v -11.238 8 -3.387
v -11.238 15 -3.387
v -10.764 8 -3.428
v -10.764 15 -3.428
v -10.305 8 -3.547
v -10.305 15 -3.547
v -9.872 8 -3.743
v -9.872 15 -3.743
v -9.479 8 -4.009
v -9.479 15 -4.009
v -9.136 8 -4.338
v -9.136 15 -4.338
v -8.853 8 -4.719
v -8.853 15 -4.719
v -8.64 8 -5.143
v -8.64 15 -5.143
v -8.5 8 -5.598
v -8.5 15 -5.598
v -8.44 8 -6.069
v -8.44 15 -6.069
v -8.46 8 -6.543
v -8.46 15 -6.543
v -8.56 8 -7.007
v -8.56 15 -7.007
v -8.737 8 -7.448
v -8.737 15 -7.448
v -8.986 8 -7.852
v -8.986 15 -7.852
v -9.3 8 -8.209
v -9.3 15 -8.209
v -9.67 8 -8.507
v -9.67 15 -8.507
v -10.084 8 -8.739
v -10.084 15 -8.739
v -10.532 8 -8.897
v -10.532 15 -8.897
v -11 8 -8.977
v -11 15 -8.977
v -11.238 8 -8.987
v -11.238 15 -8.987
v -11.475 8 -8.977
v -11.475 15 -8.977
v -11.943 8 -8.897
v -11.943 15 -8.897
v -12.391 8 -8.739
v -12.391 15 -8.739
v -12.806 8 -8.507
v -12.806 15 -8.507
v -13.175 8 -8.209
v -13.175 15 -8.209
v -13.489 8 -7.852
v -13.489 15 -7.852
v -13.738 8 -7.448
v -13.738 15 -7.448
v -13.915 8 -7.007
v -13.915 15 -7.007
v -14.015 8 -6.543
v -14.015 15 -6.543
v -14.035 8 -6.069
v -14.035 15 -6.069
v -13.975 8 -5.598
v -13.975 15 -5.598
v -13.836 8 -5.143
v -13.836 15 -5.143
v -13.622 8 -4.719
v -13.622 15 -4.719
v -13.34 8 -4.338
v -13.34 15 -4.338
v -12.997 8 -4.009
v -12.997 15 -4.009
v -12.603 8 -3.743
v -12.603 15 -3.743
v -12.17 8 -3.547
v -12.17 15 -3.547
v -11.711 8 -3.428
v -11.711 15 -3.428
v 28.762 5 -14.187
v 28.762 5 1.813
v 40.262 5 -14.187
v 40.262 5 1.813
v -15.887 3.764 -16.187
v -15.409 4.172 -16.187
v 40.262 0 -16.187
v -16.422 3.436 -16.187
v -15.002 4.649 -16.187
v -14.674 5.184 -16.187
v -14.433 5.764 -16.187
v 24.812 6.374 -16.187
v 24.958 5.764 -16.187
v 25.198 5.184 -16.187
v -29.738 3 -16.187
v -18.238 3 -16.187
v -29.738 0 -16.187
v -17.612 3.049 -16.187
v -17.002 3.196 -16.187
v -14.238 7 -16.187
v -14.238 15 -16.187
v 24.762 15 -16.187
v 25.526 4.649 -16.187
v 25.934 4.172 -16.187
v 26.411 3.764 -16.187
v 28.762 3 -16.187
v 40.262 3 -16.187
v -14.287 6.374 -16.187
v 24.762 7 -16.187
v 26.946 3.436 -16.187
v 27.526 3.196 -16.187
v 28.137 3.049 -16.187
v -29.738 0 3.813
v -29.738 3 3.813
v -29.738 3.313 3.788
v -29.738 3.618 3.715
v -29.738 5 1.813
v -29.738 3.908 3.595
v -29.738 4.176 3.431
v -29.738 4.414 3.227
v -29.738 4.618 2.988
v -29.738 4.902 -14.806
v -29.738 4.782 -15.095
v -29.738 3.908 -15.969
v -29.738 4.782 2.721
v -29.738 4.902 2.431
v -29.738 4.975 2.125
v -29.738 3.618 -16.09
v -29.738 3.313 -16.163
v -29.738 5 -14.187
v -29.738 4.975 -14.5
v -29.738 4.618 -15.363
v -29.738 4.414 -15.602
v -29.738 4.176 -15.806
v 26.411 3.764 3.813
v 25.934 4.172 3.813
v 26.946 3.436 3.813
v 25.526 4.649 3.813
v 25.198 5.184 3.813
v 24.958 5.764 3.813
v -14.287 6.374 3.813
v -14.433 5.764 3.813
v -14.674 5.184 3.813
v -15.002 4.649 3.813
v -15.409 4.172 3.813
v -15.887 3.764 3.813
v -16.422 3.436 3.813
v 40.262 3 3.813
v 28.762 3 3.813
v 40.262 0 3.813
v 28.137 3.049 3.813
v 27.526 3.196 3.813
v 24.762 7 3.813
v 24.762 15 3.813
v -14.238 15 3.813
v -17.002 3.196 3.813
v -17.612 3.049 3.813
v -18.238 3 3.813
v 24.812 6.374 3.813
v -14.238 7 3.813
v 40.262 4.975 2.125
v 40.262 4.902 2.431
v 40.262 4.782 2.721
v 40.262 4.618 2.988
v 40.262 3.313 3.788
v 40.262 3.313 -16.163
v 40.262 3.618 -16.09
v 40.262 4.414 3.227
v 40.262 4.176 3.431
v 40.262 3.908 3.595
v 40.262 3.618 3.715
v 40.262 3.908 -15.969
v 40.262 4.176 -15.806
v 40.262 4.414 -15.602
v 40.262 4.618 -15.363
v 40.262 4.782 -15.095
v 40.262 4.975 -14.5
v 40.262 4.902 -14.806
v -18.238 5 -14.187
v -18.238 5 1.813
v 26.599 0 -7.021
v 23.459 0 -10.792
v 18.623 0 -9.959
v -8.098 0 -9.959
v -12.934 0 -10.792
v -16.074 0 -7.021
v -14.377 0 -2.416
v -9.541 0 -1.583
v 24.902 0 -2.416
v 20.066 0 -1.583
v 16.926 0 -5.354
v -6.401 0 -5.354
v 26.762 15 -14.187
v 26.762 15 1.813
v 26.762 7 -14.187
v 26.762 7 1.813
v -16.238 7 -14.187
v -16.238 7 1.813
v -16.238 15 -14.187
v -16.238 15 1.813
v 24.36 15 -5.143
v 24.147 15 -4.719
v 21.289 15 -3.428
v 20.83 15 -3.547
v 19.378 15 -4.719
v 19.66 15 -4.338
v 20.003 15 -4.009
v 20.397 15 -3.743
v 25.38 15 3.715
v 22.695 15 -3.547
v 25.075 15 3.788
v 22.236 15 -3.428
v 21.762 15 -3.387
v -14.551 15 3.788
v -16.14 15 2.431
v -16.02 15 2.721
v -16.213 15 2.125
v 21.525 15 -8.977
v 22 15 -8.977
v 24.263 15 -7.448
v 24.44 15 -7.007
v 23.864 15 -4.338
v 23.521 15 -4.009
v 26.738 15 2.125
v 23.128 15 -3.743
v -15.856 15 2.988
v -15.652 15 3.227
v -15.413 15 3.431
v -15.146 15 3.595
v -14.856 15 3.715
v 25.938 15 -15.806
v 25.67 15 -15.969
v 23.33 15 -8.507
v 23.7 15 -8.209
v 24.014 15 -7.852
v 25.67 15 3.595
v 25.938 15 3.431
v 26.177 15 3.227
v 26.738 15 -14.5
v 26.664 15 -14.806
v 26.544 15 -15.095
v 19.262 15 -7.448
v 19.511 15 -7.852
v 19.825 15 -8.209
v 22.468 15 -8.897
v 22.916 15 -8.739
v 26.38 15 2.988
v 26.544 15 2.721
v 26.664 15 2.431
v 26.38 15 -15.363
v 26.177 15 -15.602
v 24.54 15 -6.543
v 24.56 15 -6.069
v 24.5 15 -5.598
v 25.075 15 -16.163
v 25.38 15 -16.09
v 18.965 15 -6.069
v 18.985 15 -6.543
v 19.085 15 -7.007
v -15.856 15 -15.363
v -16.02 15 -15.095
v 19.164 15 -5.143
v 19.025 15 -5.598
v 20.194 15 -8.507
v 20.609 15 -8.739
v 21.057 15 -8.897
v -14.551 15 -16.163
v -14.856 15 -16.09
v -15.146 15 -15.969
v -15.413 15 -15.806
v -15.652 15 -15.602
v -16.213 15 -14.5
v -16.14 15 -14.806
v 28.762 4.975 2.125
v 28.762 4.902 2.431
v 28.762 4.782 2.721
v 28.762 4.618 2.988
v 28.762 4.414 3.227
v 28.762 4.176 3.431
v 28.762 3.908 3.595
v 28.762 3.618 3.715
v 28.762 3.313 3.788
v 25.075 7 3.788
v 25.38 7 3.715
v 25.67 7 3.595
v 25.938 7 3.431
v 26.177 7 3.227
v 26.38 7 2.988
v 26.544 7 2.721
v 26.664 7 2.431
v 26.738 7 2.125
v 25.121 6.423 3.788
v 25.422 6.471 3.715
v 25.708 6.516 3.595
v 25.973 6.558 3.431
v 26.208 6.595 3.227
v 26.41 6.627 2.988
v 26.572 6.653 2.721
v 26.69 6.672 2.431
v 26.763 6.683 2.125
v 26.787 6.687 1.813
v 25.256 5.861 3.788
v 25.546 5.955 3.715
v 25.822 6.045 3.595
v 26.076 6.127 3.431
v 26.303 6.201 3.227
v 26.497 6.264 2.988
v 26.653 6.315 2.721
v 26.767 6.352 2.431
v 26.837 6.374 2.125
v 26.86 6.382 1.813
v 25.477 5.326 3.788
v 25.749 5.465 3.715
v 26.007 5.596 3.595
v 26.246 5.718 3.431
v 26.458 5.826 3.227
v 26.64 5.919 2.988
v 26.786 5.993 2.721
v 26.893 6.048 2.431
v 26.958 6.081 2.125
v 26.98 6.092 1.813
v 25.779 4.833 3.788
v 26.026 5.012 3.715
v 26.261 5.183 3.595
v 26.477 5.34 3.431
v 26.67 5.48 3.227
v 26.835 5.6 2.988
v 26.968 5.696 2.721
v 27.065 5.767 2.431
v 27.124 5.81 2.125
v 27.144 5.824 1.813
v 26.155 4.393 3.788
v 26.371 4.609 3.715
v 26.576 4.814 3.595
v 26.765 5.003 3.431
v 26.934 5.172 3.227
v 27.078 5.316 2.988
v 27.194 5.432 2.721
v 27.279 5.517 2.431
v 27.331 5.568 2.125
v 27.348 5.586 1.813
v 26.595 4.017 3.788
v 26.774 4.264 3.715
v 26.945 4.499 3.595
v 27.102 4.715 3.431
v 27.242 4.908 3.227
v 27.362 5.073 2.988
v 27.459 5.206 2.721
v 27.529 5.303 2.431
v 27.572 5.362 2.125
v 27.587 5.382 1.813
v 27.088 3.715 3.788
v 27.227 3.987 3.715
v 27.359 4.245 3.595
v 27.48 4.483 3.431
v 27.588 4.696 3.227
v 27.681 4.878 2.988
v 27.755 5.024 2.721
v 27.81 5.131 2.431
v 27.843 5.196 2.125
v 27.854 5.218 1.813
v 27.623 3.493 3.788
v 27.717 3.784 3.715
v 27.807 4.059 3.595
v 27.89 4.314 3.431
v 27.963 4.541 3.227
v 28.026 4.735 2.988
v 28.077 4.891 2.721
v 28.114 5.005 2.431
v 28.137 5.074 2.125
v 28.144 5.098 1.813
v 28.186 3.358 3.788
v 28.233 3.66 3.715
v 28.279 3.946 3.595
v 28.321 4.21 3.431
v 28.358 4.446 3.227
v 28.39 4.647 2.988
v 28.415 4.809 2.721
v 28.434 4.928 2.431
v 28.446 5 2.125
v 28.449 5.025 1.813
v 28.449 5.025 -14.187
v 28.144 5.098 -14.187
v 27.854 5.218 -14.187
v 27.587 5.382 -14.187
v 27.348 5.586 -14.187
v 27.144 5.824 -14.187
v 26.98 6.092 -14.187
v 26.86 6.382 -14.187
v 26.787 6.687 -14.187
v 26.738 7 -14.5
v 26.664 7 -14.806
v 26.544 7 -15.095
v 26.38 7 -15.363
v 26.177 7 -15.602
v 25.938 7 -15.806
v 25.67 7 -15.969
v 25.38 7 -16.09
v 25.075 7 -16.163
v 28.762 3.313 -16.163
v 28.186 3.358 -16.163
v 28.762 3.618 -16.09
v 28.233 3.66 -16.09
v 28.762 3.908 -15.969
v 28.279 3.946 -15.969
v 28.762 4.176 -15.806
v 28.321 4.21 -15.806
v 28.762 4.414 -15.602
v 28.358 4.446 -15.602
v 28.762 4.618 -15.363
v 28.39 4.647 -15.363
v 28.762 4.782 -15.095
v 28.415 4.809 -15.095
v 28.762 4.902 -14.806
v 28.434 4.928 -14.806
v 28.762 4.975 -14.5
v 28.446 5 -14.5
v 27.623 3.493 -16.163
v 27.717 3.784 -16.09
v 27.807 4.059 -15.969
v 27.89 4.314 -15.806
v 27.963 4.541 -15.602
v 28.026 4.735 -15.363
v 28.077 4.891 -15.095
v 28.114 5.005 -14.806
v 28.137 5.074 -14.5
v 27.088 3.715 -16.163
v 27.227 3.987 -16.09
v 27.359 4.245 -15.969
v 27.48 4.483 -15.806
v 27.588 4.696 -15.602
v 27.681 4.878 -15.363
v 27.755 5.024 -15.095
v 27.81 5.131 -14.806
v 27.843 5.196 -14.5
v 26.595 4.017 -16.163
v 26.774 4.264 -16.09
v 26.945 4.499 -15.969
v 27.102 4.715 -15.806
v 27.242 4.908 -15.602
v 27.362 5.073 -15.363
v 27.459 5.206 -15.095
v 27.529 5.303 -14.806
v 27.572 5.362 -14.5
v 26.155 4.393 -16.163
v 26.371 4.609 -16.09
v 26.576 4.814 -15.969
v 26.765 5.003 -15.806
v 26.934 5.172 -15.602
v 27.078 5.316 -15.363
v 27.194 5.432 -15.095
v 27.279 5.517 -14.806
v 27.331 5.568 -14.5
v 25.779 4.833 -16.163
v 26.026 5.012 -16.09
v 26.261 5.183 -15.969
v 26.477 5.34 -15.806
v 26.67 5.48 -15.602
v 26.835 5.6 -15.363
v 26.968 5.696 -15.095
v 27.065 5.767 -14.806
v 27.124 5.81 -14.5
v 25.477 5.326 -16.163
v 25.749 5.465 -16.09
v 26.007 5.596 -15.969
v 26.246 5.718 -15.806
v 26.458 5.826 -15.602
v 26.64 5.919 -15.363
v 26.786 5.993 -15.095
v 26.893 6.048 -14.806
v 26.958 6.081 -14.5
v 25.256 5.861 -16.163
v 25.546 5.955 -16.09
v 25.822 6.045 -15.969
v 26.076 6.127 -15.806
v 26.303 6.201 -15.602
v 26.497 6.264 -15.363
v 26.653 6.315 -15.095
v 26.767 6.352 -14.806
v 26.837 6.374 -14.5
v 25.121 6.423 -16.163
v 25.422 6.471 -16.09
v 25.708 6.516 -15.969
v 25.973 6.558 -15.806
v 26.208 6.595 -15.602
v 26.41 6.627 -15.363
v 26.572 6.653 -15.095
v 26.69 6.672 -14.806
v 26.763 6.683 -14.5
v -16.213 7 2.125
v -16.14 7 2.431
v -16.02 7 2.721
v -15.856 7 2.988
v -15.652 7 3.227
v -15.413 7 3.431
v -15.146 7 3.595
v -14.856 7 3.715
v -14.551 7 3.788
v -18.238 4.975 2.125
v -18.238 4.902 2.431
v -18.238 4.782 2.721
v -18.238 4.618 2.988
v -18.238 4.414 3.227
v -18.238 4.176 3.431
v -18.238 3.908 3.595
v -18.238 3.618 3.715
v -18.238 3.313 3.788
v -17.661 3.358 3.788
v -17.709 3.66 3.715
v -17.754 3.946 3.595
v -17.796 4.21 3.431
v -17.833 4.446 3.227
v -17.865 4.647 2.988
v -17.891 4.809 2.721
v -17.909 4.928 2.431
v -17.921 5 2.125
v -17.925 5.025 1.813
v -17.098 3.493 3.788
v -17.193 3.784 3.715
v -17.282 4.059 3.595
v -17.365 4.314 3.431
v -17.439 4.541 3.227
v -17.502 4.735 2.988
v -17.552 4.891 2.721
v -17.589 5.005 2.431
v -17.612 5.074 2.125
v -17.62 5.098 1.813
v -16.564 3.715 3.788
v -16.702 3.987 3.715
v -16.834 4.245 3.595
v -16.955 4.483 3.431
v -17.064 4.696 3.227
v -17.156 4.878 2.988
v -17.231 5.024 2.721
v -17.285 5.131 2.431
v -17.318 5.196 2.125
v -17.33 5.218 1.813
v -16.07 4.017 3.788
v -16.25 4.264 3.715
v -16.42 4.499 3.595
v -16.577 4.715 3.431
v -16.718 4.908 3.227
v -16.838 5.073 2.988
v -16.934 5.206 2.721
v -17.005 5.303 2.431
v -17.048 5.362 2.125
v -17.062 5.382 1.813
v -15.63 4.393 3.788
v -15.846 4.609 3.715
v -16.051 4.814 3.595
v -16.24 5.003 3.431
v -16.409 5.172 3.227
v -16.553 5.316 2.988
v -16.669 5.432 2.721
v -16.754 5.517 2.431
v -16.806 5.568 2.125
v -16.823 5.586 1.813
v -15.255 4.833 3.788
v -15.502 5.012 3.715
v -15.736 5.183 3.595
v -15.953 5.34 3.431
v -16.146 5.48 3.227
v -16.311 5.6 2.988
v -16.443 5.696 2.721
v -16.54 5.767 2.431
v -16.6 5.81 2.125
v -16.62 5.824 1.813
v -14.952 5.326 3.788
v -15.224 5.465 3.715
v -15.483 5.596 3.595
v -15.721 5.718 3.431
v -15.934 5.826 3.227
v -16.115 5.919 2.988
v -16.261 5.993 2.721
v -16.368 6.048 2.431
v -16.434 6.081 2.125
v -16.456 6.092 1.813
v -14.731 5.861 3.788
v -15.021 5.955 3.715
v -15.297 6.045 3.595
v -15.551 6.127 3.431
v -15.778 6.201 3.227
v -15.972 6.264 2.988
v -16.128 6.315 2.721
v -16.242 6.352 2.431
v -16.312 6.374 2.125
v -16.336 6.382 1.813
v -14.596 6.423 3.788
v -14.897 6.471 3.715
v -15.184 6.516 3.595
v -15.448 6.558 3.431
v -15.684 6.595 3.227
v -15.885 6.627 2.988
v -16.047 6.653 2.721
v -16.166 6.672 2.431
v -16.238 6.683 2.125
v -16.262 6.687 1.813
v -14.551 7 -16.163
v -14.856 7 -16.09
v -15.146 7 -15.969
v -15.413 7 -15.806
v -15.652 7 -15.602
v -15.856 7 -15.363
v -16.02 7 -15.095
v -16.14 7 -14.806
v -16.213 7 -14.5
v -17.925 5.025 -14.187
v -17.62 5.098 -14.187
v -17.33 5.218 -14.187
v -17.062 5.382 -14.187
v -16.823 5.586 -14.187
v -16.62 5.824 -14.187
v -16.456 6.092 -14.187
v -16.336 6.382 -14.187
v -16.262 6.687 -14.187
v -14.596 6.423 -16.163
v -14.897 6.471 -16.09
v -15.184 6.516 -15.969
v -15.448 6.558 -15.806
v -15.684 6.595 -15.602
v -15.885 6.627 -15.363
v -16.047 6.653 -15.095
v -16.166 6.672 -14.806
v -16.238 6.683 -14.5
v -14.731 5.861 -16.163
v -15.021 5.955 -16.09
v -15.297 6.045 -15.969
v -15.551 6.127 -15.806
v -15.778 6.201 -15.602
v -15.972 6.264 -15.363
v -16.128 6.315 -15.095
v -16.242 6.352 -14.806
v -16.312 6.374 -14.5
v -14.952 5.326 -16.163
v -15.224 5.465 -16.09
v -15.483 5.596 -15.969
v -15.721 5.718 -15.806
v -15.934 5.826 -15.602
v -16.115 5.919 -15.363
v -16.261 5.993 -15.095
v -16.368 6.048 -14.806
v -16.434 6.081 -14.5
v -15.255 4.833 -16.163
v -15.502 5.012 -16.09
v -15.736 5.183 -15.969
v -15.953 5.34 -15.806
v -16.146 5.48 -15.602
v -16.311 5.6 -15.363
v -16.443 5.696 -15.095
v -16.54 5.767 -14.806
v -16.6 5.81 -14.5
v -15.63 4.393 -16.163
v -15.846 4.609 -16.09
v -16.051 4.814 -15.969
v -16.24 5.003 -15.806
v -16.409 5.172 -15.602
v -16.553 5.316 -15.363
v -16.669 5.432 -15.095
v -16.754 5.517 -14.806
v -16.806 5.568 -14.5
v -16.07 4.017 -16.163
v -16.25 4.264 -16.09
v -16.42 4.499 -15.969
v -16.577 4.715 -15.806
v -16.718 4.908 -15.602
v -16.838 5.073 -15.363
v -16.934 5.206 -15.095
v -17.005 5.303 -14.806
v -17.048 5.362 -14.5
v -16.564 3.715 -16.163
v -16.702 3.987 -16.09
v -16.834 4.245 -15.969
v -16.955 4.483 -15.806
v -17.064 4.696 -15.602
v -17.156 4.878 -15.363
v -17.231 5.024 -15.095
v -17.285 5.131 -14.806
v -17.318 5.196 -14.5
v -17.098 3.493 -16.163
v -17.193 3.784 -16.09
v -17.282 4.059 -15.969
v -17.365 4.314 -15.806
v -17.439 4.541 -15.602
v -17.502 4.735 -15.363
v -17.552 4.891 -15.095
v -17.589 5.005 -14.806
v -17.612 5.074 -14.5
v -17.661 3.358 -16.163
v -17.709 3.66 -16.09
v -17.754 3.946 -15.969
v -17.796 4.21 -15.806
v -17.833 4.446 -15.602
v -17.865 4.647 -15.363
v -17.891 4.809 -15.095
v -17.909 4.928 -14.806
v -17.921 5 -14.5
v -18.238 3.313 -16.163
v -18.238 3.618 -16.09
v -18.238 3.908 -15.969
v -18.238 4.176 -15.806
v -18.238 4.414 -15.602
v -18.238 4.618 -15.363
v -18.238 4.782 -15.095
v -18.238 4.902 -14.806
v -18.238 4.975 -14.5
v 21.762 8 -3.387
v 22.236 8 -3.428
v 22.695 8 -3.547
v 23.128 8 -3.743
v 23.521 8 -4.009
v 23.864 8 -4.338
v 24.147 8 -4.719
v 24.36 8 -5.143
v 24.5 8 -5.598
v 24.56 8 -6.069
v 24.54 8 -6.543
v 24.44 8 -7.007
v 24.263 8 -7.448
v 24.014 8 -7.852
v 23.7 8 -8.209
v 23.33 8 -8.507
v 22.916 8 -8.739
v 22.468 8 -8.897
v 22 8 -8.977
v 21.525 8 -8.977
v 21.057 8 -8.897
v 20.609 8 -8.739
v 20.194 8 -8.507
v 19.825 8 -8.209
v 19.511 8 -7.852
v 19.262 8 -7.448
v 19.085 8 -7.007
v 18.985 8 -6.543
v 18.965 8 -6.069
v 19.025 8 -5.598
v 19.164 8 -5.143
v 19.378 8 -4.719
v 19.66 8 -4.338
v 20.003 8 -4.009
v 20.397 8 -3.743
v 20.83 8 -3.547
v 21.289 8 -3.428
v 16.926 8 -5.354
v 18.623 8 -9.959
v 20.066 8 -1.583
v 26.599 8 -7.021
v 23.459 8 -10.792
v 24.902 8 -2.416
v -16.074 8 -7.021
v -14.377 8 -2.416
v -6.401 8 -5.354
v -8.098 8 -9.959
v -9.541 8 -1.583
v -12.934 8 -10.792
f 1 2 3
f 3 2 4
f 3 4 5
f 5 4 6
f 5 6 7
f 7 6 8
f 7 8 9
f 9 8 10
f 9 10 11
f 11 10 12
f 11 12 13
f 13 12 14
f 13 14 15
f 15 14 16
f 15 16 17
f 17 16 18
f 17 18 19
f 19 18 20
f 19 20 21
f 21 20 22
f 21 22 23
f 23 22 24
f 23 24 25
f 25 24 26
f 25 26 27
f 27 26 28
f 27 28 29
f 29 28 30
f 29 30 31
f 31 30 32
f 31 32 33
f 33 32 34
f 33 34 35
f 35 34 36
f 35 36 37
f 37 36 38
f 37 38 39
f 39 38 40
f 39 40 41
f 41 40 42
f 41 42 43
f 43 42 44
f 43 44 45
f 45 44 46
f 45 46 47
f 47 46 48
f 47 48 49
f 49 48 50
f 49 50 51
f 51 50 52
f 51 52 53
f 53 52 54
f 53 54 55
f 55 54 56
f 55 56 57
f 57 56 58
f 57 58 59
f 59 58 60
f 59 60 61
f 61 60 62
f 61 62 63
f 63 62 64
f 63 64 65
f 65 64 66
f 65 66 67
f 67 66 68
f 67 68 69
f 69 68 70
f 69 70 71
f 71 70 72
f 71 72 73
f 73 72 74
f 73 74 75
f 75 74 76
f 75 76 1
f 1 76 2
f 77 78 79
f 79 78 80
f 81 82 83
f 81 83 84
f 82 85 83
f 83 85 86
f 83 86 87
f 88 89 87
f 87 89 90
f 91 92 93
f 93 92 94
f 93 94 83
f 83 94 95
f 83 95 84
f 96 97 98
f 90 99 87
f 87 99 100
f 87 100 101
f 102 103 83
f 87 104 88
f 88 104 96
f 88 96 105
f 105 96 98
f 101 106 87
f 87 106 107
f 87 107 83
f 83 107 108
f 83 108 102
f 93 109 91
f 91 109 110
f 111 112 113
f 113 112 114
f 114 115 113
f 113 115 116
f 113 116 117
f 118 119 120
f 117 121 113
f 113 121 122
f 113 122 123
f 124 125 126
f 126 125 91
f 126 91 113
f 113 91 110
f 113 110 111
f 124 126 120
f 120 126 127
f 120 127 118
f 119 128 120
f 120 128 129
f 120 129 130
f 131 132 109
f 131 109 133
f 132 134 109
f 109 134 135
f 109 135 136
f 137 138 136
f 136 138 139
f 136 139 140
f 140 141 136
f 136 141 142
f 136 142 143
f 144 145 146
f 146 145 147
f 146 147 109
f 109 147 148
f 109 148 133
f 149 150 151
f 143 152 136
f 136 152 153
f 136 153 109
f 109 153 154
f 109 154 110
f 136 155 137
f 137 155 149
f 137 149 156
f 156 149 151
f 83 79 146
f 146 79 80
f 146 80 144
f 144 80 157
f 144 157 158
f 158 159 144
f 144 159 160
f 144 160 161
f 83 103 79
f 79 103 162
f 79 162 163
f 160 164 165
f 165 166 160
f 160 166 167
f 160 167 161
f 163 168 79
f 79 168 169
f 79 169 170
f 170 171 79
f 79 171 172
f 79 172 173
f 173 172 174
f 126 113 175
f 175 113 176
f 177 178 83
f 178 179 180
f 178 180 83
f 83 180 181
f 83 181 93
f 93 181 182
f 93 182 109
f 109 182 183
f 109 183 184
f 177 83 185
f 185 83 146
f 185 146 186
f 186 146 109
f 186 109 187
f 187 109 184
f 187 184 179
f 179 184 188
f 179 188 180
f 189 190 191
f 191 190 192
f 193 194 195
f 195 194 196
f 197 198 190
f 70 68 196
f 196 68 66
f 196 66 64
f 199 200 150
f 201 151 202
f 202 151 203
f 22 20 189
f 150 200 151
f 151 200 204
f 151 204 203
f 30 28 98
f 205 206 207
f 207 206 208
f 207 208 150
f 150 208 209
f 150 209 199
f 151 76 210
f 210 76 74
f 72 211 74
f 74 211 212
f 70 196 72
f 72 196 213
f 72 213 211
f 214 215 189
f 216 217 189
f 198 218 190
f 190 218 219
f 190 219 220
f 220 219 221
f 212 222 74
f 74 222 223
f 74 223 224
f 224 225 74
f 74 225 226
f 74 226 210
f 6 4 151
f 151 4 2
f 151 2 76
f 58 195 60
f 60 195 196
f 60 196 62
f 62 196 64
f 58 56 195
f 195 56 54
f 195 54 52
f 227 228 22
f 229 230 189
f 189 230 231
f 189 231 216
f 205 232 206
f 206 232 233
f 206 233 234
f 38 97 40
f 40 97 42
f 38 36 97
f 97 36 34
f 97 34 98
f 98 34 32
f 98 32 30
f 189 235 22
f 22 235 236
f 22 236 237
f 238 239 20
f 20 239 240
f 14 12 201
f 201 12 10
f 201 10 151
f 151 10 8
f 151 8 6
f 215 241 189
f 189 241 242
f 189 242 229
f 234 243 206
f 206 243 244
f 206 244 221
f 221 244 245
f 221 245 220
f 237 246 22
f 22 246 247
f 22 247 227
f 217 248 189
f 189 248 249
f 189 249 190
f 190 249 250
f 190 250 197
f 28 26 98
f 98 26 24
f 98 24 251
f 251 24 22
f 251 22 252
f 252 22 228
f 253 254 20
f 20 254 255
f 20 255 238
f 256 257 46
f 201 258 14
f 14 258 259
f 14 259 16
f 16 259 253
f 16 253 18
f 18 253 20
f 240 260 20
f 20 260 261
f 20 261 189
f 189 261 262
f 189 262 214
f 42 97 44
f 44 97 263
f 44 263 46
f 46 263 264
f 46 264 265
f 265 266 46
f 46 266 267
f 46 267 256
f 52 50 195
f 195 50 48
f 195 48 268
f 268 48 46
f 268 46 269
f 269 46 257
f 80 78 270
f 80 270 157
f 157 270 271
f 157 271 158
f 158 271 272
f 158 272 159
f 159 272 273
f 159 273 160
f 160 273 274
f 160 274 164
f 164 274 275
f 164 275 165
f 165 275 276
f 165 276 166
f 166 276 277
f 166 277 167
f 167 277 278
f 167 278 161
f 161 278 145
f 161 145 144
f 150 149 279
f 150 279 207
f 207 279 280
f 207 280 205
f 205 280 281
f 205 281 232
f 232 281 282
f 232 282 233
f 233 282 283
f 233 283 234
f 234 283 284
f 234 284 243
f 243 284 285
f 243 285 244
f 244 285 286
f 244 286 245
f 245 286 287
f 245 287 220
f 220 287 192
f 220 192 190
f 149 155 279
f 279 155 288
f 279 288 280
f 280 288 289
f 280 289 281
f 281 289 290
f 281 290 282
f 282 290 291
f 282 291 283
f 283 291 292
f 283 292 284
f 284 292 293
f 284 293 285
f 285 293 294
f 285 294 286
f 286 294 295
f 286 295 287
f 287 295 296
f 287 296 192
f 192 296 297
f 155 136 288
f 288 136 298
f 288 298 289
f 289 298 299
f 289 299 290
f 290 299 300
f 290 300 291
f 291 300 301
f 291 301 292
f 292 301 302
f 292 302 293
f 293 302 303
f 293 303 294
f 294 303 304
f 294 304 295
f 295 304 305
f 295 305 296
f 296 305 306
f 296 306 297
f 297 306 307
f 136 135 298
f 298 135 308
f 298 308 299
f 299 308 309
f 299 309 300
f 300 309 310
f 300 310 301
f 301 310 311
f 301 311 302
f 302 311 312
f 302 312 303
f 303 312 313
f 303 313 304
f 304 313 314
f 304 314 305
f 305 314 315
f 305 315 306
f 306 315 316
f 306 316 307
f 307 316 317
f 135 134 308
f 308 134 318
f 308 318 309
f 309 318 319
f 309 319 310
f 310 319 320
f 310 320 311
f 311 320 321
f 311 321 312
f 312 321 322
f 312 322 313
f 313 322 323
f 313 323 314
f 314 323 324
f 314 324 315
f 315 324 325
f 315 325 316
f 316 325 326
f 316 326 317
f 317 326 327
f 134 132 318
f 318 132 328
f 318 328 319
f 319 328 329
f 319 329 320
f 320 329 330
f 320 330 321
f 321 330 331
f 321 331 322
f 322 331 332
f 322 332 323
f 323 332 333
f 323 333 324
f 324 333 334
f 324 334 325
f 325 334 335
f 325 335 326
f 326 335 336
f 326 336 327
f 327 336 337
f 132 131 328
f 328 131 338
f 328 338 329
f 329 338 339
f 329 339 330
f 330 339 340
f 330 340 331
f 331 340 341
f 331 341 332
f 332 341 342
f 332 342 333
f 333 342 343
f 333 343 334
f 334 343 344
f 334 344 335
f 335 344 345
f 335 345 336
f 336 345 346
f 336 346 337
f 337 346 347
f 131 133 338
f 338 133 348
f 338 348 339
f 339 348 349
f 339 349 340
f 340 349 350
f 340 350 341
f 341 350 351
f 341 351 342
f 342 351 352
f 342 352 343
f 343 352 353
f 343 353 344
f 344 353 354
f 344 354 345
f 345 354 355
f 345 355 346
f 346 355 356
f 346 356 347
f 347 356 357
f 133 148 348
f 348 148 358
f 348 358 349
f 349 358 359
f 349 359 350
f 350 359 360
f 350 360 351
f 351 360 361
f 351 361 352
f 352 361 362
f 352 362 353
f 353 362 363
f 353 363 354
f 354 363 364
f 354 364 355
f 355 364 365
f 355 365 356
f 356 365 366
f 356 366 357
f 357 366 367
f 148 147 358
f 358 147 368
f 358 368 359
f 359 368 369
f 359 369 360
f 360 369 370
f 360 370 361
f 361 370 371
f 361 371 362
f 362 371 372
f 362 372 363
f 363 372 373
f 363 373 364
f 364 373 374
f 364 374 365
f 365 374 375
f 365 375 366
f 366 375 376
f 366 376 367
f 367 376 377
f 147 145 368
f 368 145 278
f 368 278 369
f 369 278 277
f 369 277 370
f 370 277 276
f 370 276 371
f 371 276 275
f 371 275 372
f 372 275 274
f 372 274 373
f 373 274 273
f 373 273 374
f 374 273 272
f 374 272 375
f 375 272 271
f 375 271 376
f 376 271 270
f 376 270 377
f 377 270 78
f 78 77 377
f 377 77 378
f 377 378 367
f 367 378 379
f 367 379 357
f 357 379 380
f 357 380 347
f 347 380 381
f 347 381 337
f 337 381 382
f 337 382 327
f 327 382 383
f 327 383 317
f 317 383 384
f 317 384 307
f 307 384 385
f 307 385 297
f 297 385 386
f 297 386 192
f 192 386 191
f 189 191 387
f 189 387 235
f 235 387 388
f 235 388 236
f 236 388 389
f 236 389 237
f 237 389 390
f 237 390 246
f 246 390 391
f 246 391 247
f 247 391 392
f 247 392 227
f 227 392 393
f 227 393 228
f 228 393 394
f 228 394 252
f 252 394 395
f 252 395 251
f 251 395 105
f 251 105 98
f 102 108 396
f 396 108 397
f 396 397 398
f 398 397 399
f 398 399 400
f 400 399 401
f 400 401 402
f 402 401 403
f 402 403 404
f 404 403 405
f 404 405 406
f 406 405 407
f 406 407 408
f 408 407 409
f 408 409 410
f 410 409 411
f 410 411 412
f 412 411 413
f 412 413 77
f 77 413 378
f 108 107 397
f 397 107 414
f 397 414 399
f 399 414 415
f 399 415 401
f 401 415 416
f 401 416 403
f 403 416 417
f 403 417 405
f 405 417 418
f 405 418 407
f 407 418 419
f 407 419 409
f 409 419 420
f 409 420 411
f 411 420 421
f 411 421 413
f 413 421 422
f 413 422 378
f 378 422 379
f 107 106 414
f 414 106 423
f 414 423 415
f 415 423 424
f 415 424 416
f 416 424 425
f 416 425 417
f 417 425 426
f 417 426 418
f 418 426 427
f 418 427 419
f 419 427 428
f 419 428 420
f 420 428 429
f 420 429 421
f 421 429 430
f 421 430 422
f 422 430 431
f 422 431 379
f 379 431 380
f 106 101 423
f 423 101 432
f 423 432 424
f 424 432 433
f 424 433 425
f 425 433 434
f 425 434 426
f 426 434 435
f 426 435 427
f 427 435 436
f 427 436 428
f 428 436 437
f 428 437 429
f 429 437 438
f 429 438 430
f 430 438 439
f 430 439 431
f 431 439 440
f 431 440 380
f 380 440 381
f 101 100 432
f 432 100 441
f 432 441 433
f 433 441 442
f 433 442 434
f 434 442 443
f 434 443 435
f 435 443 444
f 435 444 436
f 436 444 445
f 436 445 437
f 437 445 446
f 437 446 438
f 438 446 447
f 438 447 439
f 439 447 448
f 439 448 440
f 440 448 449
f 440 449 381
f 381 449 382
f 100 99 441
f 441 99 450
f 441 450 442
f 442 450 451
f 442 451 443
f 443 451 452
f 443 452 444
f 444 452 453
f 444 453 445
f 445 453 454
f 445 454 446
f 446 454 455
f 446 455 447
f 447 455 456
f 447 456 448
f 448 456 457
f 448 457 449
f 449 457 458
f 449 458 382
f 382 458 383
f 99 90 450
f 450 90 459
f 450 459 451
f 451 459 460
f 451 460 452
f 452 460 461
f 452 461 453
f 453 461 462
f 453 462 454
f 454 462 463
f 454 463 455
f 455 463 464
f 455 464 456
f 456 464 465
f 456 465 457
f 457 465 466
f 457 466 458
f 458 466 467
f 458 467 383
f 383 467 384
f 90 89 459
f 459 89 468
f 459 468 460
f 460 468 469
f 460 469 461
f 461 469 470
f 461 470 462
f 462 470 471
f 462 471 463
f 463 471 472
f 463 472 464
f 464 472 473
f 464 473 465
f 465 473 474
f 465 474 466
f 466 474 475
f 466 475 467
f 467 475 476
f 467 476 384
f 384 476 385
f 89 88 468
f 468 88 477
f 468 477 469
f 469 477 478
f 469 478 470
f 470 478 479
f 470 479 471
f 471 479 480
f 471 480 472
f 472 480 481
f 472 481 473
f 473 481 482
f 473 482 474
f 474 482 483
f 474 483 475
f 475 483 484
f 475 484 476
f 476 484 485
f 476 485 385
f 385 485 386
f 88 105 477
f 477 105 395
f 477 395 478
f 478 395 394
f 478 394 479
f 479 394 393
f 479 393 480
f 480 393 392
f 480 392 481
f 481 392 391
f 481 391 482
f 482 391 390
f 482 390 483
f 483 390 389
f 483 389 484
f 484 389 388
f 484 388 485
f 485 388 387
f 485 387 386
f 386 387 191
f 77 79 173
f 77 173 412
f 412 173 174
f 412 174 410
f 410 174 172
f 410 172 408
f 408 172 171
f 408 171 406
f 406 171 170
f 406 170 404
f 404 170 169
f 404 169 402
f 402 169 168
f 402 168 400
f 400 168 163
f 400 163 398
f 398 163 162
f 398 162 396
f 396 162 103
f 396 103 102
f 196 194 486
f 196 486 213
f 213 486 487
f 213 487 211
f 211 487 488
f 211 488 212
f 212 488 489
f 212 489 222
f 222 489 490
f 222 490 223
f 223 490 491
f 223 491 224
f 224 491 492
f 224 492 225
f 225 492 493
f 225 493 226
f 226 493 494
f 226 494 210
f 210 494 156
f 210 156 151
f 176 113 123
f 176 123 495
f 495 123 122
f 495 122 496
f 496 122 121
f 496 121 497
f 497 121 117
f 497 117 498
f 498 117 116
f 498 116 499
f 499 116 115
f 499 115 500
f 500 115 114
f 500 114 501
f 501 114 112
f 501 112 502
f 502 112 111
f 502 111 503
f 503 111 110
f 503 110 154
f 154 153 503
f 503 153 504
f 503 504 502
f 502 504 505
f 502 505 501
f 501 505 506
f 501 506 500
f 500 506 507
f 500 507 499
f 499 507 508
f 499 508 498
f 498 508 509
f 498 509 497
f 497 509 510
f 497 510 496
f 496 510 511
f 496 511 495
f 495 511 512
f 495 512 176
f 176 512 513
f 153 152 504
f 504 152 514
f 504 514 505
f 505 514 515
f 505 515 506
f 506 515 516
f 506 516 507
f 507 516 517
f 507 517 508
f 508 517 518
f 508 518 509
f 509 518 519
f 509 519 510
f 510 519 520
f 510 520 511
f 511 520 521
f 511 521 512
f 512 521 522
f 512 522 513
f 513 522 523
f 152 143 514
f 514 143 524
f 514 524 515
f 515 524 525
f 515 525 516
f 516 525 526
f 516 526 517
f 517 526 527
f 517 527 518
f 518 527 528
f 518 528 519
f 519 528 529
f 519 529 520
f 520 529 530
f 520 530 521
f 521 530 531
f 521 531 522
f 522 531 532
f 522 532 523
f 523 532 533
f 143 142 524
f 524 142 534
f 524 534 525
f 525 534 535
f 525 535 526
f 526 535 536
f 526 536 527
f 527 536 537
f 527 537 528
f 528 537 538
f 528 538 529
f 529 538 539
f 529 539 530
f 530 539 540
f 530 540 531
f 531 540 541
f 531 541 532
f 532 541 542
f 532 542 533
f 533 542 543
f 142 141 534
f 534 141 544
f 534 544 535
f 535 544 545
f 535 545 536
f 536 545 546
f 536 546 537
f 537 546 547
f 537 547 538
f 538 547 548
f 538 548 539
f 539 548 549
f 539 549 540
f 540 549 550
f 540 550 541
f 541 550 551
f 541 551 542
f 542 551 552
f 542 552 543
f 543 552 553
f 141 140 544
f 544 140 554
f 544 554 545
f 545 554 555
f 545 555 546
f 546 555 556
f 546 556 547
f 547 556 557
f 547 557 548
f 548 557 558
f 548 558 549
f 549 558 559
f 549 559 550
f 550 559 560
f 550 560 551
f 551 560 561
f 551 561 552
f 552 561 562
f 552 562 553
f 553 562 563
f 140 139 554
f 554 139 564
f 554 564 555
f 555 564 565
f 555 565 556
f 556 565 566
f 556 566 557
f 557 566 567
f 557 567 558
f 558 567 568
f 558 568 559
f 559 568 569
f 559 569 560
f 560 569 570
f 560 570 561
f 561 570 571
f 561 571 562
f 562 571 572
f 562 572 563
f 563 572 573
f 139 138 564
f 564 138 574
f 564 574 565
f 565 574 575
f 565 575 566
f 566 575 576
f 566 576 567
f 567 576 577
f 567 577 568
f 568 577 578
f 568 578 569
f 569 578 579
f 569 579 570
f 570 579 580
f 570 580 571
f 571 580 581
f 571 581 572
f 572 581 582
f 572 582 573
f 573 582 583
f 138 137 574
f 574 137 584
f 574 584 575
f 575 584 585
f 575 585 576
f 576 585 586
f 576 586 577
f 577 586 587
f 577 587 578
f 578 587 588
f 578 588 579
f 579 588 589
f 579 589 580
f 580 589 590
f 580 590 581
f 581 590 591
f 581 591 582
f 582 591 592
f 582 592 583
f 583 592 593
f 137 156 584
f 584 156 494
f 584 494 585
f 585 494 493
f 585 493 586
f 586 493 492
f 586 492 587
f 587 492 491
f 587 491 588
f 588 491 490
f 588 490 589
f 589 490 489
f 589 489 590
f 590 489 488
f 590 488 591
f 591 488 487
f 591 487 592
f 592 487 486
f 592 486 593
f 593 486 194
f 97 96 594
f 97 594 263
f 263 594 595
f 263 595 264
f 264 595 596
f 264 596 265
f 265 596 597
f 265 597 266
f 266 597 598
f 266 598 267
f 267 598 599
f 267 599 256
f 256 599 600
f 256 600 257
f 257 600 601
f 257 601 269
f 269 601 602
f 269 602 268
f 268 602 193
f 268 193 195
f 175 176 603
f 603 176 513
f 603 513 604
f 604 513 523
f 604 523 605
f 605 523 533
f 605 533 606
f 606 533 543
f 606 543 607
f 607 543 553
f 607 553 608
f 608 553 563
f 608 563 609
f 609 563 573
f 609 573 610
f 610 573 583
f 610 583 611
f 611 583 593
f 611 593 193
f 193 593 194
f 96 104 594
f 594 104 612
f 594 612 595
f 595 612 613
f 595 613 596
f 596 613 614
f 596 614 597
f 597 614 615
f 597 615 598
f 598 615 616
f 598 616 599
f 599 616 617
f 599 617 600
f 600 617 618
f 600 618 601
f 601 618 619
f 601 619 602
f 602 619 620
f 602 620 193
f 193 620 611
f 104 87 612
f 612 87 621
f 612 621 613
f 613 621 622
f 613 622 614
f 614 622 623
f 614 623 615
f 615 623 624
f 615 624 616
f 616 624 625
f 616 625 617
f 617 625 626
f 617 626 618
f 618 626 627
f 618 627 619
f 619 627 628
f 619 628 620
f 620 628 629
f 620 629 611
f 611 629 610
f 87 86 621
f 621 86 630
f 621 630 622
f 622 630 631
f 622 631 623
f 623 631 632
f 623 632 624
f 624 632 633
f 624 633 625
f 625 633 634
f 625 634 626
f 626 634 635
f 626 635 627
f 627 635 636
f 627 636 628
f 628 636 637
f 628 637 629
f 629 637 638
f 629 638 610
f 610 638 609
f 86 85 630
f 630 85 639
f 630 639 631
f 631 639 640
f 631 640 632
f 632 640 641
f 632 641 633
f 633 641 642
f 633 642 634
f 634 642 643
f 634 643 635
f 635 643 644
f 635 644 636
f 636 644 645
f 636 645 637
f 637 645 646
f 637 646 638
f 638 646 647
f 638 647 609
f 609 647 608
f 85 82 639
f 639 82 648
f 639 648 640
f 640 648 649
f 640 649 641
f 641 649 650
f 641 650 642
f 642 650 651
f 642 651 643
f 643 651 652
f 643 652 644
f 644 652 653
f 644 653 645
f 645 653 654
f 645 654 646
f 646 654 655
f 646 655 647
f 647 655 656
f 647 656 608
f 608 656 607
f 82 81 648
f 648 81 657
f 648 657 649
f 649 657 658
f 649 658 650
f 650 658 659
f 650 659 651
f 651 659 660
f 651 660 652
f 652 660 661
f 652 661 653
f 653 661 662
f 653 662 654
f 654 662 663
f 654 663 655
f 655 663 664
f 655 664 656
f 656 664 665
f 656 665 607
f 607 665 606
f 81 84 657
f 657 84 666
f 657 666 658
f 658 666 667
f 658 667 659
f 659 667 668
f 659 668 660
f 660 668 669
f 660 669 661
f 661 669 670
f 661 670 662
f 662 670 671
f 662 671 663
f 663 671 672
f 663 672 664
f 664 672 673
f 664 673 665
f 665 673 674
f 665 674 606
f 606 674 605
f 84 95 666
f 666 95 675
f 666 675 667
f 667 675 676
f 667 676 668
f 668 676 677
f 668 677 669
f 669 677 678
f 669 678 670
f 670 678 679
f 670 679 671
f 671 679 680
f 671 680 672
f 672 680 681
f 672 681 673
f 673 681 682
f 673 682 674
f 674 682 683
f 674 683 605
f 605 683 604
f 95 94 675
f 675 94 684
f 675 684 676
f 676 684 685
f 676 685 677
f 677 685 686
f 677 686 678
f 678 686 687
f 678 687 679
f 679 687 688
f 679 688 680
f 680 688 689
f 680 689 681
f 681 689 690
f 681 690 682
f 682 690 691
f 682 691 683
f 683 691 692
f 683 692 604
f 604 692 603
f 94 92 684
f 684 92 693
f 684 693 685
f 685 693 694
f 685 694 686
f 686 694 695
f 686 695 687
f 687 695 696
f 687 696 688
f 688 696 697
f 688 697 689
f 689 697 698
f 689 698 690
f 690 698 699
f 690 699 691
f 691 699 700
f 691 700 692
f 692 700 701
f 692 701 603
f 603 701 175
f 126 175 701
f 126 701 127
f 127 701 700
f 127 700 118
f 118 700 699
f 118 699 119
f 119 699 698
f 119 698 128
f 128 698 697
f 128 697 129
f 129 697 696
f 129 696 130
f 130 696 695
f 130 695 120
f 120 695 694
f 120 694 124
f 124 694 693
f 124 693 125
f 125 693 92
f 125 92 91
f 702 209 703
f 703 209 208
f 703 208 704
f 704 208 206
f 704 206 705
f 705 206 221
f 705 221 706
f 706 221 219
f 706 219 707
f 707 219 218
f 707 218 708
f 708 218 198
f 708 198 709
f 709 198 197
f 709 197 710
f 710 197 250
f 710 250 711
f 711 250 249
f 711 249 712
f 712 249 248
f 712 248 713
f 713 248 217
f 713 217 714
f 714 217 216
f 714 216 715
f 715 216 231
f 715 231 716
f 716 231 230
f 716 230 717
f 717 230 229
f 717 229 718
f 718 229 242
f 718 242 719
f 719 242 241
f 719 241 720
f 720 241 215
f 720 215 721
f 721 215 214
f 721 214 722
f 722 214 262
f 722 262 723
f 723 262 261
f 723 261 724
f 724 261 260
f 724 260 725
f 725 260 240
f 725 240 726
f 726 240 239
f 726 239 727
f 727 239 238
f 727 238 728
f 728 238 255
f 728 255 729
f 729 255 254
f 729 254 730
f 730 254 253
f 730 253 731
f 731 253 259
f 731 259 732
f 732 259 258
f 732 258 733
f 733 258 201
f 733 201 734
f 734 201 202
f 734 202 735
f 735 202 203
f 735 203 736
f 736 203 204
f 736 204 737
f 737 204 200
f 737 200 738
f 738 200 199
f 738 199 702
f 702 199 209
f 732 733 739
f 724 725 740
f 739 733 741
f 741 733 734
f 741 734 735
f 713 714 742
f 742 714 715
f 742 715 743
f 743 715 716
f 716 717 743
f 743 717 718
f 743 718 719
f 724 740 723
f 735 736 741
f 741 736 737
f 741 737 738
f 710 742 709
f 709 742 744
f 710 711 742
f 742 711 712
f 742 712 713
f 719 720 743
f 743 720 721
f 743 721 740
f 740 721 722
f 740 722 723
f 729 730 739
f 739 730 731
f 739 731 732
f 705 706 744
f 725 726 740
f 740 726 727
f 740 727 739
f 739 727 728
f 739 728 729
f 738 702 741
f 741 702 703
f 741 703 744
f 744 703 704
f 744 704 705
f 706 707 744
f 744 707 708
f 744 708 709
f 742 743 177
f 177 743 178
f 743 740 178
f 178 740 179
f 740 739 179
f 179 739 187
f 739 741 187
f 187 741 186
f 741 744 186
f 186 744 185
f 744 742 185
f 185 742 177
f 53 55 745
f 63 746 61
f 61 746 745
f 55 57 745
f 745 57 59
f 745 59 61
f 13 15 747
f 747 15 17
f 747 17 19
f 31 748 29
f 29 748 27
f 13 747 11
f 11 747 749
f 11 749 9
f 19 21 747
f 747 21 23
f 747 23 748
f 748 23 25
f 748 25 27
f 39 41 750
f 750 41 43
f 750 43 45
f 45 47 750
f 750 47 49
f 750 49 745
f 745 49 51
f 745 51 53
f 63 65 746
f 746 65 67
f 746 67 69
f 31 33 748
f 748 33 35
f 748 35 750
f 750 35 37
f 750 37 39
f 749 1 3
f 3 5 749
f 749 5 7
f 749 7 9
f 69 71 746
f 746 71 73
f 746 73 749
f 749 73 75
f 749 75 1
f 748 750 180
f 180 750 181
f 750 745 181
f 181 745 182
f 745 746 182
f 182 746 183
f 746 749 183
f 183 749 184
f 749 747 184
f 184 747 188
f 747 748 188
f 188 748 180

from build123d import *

# Parameters (mm, degrees)
SKETCH1_W           = 70
SKETCH1_H           = 20
BOSS_EXTRUDE1_DEPTH = 5
SKETCH2_W           = 43
SKETCH2_H           = 20
BOSS_EXTRUDE2_DEPTH = 10
FILLET1_R           = 2
SKETCH3_R           = 2.8
CUT_EXTRUDE1_DEPTH  = 16
CUT_EXTRUDE2_DEPTH  = 8


with BuildPart() as part:
    # Sketch1 → Boss-Extrude1 (new body)
    with BuildSketch(Plane(origin=(0, 0, 0), x_dir=(1, 0, 0), z_dir=(0, 1, 0))):
        with Locations((5.262356584, 6.187481613)):
            Rectangle(SKETCH1_W, SKETCH1_H)
    extrude(amount=BOSS_EXTRUDE1_DEPTH)

    # Sketch2 → Boss-Extrude2 (add)
    with BuildSketch(Plane(origin=(0, 5, 0), x_dir=(1, 0, 0), z_dir=(0, 1, 0))):
        with Locations((5.262356584, 6.187481613)):
            Rectangle(SKETCH2_W, SKETCH2_H)
    extrude(amount=BOSS_EXTRUDE2_DEPTH)

    # Fillet1
    fillet1_edges = [part.edges().sort_by_distance(p)[0] for p in [
        (-22.987643416, 5, 3.812518387),
        (-22.987643416, 5, -16.187481613),
        (33.512356584, 5, 3.812518387),
        (26.762356584, 5, -6.187481613),
        (26.762356584, 10, 3.812518387),
        (26.762356584, 10, -16.187481613),
        (-16.237643416, 5, -6.187481613),
        (-16.237643416, 10, -16.187481613),
        (-16.237643416, 10, 3.812518387),
        (33.512356584, 5, -16.187481613),
    ]]
    fillet(fillet1_edges, radius=FILLET1_R)

    # Sketch3 → Cut-Extrude1 (cut, through all)
    with BuildSketch(Plane(origin=(0, 15, 0), x_dir=(1, 0, 0), z_dir=(0, 1, 0))):
        with Locations((21.762356584, 6.187481613)):
            Circle(SKETCH3_R)
        with Locations((-11.237643416, 6.187481613)):
            Circle(SKETCH3_R)
    extrude(amount=-CUT_EXTRUDE1_DEPTH, mode=Mode.SUBTRACT)

    # Sketch4 → Cut-Extrude2 (cut)
    with BuildSketch(Plane.XZ):
        Polygon((-8.098072068, -9.959274965), (-6.401388882, -5.354429745), (-9.54096023, -1.582636394), (-14.377214764, -2.415688262), (-16.07389795, -7.020533482), (-12.934326602, -10.792326833), align=None)
        Polygon((23.45903977, -10.792326833), (18.622785236, -9.959274965), (16.92610205, -5.354429745), (20.065673398, -1.582636394), (24.901927932, -2.415688262), (26.598611118, -7.020533482), align=None)
    extrude(amount=-CUT_EXTRUDE2_DEPTH, mode=Mode.SUBTRACT)


solid = part.part
